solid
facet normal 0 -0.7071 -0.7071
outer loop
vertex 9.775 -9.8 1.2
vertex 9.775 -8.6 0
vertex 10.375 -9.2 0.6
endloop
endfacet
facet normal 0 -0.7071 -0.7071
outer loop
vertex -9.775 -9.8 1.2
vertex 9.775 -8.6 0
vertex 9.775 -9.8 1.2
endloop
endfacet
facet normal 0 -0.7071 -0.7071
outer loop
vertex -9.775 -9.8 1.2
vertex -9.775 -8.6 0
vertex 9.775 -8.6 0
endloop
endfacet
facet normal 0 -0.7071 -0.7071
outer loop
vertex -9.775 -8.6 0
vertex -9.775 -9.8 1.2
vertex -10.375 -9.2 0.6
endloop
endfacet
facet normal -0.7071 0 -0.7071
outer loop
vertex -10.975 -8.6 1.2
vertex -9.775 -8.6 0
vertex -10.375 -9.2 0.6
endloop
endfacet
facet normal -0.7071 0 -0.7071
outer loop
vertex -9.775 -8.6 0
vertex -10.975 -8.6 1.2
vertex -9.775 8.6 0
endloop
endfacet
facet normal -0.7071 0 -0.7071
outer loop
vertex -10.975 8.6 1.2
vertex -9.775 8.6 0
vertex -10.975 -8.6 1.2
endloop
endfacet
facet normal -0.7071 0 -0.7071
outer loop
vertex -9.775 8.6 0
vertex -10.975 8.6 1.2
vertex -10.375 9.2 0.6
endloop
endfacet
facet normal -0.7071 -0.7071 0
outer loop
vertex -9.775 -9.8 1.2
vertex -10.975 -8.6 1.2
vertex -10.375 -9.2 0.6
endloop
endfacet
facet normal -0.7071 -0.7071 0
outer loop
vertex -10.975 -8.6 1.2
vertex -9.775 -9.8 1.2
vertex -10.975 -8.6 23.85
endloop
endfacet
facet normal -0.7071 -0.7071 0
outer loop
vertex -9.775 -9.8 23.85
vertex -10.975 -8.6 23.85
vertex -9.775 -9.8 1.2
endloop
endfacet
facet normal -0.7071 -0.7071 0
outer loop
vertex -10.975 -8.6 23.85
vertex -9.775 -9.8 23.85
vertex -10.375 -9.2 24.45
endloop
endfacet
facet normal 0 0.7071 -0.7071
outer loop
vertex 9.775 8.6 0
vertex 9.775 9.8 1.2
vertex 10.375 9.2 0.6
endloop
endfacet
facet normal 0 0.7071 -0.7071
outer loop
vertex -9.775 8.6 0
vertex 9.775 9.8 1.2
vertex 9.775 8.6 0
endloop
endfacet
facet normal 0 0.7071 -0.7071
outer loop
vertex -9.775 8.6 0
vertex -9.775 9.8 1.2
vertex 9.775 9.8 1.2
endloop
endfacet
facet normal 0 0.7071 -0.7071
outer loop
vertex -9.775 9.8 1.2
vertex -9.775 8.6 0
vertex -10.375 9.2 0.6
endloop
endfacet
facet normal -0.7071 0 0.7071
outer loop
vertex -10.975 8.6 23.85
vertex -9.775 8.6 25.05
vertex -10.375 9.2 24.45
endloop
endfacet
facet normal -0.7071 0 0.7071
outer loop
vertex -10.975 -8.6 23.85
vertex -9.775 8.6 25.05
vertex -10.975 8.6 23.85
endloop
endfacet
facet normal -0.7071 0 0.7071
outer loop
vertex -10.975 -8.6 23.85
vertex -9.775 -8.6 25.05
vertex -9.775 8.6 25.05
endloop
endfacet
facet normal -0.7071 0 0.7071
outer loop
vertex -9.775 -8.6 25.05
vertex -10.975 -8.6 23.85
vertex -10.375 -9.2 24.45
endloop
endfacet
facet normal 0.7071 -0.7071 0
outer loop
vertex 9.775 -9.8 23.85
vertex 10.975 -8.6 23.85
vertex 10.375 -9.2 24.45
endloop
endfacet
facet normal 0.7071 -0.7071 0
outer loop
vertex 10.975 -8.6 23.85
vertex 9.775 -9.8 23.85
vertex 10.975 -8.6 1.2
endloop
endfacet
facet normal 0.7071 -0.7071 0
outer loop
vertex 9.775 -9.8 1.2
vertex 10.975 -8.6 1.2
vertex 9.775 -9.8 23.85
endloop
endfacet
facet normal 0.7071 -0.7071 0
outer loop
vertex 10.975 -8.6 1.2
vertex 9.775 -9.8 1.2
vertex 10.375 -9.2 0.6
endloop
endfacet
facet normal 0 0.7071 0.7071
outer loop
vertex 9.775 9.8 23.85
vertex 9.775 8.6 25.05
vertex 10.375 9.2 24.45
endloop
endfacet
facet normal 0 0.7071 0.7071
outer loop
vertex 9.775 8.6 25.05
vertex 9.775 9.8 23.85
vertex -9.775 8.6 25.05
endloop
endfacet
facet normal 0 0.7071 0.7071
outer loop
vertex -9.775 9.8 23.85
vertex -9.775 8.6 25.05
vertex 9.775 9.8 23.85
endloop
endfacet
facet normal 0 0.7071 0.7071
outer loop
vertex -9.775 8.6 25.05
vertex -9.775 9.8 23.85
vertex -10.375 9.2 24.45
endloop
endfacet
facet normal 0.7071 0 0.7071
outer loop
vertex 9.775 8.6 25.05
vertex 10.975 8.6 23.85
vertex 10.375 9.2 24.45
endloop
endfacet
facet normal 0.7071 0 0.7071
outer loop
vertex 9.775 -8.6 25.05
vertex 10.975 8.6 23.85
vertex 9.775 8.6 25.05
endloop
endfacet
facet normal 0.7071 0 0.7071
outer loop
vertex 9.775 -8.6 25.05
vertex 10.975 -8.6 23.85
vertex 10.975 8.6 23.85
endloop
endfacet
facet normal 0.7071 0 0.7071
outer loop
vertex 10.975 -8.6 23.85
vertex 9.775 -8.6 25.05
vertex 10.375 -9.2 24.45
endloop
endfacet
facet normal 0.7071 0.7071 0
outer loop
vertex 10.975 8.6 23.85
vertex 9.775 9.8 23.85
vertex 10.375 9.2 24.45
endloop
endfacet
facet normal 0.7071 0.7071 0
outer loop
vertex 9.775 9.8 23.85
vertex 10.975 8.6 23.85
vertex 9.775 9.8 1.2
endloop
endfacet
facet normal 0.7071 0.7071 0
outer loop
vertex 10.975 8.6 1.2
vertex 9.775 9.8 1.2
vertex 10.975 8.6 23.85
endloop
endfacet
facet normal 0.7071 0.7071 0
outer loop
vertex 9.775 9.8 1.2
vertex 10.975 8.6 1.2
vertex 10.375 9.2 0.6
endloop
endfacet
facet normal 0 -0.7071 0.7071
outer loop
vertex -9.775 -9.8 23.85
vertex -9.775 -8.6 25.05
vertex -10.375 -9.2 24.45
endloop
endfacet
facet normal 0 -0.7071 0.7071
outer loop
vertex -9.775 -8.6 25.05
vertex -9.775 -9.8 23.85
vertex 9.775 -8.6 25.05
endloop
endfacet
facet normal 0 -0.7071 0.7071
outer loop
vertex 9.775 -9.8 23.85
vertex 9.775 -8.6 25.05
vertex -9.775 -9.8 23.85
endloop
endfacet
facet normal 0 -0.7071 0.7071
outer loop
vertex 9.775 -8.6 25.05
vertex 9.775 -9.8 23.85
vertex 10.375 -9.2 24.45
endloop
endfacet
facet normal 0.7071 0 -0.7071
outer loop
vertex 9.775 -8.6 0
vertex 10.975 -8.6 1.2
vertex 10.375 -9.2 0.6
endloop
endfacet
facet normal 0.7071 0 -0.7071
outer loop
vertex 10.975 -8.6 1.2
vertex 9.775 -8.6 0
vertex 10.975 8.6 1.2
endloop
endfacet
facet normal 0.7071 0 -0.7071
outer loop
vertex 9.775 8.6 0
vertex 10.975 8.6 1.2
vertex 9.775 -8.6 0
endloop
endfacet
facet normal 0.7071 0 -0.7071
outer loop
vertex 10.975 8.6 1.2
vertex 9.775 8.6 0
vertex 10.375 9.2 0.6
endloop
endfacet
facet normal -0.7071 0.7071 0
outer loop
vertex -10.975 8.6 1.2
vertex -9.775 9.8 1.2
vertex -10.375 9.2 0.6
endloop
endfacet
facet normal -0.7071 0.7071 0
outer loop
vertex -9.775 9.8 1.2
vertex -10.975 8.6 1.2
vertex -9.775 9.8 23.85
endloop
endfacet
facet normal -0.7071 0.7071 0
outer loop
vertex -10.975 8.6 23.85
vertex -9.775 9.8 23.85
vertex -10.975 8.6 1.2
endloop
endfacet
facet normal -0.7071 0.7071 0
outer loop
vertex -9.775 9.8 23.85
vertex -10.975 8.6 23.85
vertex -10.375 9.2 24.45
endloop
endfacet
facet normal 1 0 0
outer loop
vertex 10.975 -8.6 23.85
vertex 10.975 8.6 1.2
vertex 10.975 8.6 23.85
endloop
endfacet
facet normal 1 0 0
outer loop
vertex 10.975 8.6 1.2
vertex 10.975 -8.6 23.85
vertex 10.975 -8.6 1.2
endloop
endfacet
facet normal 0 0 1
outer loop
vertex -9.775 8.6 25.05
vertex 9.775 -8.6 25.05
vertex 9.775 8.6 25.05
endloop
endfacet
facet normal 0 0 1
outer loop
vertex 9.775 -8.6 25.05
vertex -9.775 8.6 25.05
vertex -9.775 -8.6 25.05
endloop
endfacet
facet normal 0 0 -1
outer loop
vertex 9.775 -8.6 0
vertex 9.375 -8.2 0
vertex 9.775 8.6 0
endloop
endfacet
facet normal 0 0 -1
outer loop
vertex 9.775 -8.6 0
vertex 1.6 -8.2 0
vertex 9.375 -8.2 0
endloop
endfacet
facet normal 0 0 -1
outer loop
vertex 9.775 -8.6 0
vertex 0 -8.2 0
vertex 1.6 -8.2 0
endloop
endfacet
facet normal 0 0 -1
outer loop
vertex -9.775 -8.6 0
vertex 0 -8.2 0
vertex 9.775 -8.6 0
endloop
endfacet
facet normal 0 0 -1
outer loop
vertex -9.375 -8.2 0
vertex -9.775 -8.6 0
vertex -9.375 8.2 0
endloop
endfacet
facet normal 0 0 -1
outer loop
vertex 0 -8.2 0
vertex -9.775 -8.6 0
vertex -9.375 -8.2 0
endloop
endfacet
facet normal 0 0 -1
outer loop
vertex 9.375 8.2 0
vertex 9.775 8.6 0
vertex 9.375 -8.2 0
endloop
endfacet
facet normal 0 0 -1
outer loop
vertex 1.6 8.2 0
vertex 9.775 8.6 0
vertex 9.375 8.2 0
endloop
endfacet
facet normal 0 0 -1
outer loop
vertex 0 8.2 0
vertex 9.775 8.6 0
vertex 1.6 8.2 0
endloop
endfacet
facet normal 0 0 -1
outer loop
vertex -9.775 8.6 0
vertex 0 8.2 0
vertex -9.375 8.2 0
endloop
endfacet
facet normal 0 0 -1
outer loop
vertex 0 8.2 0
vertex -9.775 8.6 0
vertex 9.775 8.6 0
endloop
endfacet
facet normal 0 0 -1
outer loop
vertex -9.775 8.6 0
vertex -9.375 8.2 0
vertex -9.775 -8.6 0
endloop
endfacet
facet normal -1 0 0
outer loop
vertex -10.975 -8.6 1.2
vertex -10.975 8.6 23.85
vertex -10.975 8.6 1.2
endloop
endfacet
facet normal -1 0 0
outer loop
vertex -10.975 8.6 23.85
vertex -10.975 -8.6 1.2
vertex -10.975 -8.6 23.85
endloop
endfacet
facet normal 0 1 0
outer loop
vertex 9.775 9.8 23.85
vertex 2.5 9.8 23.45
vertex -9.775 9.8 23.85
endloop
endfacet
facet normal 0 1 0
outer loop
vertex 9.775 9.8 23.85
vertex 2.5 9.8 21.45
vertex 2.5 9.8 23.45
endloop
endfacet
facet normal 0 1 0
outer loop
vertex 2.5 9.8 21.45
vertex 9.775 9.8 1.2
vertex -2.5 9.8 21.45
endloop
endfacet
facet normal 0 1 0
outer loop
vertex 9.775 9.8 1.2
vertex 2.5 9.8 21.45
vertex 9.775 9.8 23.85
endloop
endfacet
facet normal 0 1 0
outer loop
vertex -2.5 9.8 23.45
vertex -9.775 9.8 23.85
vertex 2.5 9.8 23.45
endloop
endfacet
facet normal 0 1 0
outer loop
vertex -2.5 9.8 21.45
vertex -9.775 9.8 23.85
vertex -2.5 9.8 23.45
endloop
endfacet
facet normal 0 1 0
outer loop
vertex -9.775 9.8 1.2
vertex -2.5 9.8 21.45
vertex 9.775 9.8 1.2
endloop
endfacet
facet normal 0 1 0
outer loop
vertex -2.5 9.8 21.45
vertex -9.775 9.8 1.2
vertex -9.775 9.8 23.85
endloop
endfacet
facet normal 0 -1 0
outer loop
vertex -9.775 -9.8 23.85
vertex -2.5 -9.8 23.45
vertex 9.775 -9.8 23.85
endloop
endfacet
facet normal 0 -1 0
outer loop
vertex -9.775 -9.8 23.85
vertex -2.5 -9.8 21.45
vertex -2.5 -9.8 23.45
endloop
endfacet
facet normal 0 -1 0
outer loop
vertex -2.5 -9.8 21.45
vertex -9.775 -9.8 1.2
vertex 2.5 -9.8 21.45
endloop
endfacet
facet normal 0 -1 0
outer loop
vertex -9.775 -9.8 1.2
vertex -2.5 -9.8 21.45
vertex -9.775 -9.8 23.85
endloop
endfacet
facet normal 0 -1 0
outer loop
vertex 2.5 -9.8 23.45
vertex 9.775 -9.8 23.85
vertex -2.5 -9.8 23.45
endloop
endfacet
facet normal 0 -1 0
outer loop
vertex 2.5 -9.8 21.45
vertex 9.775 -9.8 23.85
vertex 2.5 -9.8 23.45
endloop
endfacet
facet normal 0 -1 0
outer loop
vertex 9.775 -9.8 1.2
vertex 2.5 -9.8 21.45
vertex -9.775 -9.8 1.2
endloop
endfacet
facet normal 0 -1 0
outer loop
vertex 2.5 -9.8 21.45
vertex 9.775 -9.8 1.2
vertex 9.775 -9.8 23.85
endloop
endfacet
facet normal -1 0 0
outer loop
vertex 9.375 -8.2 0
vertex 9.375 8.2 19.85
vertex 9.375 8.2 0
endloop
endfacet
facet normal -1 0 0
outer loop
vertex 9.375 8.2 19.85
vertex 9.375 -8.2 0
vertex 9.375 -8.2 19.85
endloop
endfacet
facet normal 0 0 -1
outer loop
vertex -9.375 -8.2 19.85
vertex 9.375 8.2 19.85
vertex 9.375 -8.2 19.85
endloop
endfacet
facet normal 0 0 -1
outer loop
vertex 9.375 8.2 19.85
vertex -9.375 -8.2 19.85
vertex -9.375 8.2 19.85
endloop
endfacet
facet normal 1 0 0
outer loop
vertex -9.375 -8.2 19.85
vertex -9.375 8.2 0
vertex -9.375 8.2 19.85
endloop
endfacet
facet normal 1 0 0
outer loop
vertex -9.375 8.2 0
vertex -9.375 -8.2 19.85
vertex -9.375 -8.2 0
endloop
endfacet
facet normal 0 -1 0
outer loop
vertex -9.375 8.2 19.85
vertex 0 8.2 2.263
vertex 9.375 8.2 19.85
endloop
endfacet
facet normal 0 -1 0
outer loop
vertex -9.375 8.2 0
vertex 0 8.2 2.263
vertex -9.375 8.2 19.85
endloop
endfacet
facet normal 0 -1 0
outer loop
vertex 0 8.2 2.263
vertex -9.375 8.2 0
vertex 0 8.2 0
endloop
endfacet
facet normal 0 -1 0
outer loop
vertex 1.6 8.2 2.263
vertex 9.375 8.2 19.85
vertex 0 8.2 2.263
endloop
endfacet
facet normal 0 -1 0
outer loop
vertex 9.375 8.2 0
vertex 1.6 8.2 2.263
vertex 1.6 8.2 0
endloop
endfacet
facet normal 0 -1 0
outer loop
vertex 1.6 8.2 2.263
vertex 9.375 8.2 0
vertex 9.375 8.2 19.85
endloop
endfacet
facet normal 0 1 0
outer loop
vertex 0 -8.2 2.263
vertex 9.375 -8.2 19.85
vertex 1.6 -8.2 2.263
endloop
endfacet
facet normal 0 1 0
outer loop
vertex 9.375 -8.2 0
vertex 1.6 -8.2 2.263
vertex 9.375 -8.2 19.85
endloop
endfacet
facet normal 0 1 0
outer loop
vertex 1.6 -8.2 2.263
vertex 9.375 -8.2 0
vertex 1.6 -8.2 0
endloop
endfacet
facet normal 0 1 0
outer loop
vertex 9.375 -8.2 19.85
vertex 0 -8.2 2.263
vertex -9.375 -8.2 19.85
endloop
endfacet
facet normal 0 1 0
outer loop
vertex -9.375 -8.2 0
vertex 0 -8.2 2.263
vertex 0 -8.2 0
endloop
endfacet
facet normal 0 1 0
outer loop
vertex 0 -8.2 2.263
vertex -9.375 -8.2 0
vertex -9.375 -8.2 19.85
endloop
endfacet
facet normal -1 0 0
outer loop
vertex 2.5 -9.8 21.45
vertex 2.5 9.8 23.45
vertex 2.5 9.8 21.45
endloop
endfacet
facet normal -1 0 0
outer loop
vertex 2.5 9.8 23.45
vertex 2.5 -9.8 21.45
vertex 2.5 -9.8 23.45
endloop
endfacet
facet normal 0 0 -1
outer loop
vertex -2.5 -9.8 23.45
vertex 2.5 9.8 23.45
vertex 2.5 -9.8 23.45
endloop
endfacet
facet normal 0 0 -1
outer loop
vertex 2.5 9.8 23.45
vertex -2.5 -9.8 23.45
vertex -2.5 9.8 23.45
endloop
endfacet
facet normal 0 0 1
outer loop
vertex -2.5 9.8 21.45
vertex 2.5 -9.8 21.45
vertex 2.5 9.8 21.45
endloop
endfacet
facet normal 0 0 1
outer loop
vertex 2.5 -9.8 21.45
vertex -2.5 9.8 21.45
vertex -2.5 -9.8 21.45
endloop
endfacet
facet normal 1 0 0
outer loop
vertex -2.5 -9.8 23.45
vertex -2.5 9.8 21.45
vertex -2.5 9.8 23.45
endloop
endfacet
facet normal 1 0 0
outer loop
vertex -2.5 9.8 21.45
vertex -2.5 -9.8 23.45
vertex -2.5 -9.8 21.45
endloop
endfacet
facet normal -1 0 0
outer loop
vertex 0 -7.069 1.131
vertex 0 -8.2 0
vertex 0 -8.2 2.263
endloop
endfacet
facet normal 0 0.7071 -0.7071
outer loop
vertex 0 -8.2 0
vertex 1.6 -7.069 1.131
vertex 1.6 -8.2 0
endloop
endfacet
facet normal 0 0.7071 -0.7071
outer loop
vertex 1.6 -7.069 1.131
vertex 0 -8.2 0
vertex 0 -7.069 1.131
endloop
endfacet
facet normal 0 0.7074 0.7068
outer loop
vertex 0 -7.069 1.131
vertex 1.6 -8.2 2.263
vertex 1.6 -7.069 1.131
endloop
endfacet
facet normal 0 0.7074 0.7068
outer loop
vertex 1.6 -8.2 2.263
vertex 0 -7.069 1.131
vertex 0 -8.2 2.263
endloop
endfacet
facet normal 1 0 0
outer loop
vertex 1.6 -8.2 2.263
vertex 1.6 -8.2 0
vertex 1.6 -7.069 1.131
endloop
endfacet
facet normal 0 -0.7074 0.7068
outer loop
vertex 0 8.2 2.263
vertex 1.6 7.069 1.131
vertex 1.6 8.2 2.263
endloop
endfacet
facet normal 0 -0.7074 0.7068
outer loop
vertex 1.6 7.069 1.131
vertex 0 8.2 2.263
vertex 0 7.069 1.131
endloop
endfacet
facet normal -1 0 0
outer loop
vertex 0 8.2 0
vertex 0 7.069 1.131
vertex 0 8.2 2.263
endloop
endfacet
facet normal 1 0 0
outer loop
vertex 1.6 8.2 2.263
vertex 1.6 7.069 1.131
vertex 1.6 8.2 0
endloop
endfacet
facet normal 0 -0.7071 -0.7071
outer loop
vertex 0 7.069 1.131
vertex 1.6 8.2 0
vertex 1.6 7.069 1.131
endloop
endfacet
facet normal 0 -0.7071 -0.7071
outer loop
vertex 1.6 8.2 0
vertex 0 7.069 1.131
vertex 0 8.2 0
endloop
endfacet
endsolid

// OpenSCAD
// WAGO 221 box
//
// Copyright (c) Simon W. Moore 2023

block_size = 3;
// ////////////////////////////////////////////////
// Block dimensions in mm -- DO NOT EDIT
conwidth = 5.6; // width of a single conductor
condepth = 8.2;
// DO NOT EDIT
border = 1.75; // block transparent plastic border
// DO NOT EDIT
blockheight = 18.25;
// DO NOT EDIT
fudge = 0.2;

// Wall thickness
wallt = 0.4*4;

// ////////////////////////////////////////////////
// OpenSCAD special variables -- DO NOT EDIT
$fa = 1;
// DO NOT EDIT
$fs = 0.4;

// ////////////////////////////////////////////////
// Functions
function bw(x) = conwidth*x+border+fudge; // block width
function mw(i, n) = ( i==0 ? bw(blocks[i]) + 2 + mw(i+1, n) : (i < n ? bw(blocks[i]) + 2 + mw(i+1, n) : 0)); // mount width (index, max index)


module chamferCubeImpl(sizeX, sizeY, sizeZ, chamferHeight, chamferX, chamferY, chamferZ) {
    chamferX = (chamferX == undef) ? [1, 1, 1, 1] : chamferX;
    chamferY = (chamferY == undef) ? [1, 1, 1, 1] : chamferY;
    chamferZ = (chamferZ == undef) ? [1, 1, 1, 1] : chamferZ;
    chamferCLength = sqrt(chamferHeight * chamferHeight * 2);

    difference() {
        cube([sizeX, sizeY, sizeZ]);
        for(x = [0 : 3]) {
            chamferSide1 = min(x, 1) - floor(x / 3); // 0 1 1 0
            chamferSide2 = floor(x / 2); // 0 0 1 1
            if(chamferX[x]) {
                translate([-0.1, chamferSide1 * sizeY, -chamferHeight + chamferSide2 * sizeZ])
                rotate([45, 0, 0])
                cube([sizeX + 0.2, chamferCLength, chamferCLength]);
            }
            if(chamferY[x]) {
                translate([-chamferHeight + chamferSide2 * sizeX, -0.1, chamferSide1 * sizeZ])
                rotate([0, 45, 0])
                cube([chamferCLength, sizeY + 0.2, chamferCLength]);
            }
            if(chamferZ[x]) {
                translate([chamferSide1 * sizeX, -chamferHeight + chamferSide2 * sizeY, -0.1])
                rotate([0, 0, 45])
                cube([chamferCLength, chamferCLength, sizeZ + 0.2]);
            }
        }
    }
}



ziptiew=5;
ziptieh=2;
chamf=wallt*3/4;

w=bw(block_size);
d=condepth*2;
difference() {
  translate([-(w+wallt*2)/2,-(d+wallt*2)/2,0])
     chamferCubeImpl(w+wallt*2, d+wallt*2, blockheight+wallt*3+ziptieh, chamf);
  union() {
    translate([-w/2,-d/2,-1])
      color("red") cube([w, d, blockheight+wallt+1]);
    translate([-ziptiew/2,-(d+wallt*2+2)/2,blockheight+wallt*2])
      cube([ziptiew, d+wallt*2+2, ziptieh]);
  }
}

// add nobble wallt size
ystep=d/2;
for(y=[-ystep,ystep]) {
  translate([0,y,0])
    rotate([45,0,0])
      color("green") cube(wallt);
}
  
